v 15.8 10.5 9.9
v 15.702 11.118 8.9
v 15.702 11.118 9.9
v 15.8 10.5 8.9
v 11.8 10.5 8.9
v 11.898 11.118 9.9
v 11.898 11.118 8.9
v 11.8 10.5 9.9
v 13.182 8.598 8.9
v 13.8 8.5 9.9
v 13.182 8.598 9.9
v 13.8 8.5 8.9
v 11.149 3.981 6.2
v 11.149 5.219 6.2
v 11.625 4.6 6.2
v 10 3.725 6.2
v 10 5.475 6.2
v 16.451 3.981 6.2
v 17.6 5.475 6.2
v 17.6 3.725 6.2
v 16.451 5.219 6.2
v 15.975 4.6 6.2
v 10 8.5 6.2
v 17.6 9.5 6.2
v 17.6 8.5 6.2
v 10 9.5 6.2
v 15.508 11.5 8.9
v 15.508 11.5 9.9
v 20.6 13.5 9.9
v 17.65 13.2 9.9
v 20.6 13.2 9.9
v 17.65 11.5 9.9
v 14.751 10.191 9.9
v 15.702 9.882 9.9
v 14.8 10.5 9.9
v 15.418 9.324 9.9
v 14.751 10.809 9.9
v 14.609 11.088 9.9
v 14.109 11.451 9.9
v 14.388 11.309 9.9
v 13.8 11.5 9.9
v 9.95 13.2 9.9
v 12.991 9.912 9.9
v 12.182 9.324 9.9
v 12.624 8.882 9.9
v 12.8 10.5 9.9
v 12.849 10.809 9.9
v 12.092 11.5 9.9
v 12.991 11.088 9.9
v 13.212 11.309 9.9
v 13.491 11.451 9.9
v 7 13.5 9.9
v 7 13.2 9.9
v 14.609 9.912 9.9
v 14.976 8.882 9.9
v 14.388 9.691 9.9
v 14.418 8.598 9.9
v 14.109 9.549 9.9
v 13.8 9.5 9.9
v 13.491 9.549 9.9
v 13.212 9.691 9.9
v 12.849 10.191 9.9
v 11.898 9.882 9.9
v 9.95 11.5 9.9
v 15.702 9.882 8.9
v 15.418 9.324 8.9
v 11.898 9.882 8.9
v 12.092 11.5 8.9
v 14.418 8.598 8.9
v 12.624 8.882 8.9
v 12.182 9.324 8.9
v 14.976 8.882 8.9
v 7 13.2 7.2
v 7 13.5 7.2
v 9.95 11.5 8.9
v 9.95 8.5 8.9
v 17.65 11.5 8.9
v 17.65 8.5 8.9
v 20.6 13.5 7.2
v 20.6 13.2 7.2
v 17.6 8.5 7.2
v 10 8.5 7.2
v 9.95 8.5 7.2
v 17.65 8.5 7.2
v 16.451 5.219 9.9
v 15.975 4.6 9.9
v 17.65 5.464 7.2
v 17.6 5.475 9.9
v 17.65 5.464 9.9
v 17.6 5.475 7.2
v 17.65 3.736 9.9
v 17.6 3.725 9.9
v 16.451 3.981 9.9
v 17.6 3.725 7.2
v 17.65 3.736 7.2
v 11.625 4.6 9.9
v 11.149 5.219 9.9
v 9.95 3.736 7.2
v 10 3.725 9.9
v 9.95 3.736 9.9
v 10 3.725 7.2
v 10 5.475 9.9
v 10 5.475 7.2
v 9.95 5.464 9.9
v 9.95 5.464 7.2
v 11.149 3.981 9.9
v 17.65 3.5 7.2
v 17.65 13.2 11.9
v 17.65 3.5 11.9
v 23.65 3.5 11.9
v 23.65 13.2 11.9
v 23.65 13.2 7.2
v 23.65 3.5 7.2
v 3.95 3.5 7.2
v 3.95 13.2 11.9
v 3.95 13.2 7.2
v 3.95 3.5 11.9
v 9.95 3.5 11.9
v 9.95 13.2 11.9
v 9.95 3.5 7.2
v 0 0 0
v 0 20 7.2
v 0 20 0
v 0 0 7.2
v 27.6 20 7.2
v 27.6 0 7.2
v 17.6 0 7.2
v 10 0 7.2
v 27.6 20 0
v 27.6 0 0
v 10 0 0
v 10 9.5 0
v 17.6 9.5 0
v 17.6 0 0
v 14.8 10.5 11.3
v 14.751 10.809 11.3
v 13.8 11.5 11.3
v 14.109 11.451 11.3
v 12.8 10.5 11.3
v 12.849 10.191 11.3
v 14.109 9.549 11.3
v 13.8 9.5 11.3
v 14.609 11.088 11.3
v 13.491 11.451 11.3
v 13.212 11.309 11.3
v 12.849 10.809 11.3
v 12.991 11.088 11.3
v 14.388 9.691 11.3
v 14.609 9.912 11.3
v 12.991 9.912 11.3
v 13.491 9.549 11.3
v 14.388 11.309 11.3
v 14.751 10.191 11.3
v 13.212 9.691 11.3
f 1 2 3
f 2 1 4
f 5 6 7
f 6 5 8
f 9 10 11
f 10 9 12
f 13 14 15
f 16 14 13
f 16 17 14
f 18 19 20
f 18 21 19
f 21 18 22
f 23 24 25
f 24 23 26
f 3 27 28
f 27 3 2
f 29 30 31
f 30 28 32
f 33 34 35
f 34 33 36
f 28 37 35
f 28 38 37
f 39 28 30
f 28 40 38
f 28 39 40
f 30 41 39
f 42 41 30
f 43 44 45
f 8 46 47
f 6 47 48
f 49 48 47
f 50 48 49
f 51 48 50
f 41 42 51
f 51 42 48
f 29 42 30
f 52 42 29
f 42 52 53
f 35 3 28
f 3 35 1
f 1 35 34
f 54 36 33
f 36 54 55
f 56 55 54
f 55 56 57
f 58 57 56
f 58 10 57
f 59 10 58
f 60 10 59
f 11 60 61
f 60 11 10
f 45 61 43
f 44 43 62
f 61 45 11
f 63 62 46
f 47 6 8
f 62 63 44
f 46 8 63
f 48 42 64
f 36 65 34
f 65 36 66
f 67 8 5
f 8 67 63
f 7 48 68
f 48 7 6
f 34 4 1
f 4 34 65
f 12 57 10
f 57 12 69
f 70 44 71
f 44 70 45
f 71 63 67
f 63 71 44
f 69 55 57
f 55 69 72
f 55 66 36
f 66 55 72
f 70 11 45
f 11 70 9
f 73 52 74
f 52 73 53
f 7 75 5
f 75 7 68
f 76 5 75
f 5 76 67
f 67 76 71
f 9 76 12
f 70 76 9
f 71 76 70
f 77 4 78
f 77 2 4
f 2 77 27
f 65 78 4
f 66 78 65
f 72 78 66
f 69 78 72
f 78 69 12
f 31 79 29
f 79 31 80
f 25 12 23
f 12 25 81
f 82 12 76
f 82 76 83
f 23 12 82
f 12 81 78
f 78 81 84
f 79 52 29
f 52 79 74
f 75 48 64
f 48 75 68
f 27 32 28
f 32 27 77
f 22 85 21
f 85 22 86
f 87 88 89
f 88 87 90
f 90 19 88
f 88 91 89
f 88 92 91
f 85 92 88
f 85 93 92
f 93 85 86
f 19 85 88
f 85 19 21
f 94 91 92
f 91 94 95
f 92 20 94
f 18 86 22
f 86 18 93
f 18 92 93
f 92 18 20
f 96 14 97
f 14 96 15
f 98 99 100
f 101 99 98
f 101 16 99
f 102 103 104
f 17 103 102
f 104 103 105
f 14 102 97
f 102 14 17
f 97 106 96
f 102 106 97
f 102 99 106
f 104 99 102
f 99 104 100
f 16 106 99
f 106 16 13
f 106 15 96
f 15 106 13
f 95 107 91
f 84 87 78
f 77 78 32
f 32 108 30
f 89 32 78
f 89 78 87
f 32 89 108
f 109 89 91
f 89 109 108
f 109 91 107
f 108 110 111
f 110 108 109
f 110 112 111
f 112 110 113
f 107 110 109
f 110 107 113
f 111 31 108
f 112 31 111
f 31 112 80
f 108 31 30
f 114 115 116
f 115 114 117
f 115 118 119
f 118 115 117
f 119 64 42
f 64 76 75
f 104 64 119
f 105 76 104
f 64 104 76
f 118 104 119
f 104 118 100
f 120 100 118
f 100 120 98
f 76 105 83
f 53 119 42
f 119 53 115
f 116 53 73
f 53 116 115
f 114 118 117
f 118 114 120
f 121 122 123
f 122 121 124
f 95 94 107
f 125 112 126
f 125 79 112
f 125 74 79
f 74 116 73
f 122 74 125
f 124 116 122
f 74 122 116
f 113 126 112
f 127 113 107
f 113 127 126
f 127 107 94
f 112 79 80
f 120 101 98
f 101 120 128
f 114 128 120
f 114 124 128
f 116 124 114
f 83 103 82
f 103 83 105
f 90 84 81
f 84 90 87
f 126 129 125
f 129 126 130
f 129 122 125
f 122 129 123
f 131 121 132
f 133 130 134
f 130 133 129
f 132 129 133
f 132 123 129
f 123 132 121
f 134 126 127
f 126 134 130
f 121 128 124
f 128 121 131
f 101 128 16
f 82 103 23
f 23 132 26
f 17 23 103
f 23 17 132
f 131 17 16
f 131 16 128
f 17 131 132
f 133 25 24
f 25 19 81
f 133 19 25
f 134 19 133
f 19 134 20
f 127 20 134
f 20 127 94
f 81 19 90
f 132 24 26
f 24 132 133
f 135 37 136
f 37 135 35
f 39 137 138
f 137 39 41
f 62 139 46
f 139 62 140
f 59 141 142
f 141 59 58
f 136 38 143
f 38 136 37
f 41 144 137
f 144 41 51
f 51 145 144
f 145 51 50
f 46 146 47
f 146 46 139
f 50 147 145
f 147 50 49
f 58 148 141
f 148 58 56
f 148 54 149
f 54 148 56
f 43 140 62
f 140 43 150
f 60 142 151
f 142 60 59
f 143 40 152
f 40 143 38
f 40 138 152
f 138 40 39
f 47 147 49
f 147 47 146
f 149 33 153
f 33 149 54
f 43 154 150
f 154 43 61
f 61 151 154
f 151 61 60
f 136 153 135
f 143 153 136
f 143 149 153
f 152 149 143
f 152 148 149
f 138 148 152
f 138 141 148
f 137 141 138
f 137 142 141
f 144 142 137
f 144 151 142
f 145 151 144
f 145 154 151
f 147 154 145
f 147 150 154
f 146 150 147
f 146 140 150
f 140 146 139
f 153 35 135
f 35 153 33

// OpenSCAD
boardx = 7.6;
boardy = 12.7;
boardz = 1.02;
holed_pin = 1.02;
holed_blt = 2.18;
scale = 7.32; // 1.00 mm on scale drawing of sensor
sensory = 3.6;
sensorz = 1.7;
board_up = 9.7;


module sensor_board() {   // this module will locate the board and sensor the right 
    union() {             //  distance above the xy plain with a corner touching the z axis
        translate([0,0, board_up]) difference() {
            color("red") cube([boardx, boardy, boardz]); // board
            translate([1.27+0*2.54, 1.27, 0])cylinder(d=holed_pin, h=3, center=true, $fn=20);
            translate([1.27+1*2.54, 1.27, 0])cylinder(d=holed_pin, h=3, center=true, $fn=20);
            translate([1.27+2*2.54, 1.27, 0])cylinder(d=holed_pin, h=3, center=true, $fn=20);
            translate([3.8, boardy-2.2, 0])cylinder(d=holed_blt, h=3, center=true, $fn=20);
        };
        translate([3.8, 4.5, 9.7-1.7/2]) difference() {  
            color("grey")cube([2.9, sensory, sensorz], center=true); // sensor
            translate([0,sensory/2-0.94, -sensorz/2]  ) cube([18.38/scale, 10.61/scale, 0.3], center= true);
            translate([0,-sensory/2+0.94, -sensorz/2]  ) cube([18.38/scale, 10.61/scale, 0.3], center= true);         
        }
    }
}



module support3d() {
    
    union() {
        cylinder( r = 2.0, h = 3.7, $fn= 20);
        translate([0,0, 3.7/2-1/2]) cube([boardx+6, 2*2, 3.7-1], center = true );
        translate([0,2, 3.7/2]) cube([boardx+6, 2, 3.7], center = true );
    
        translate([boardx/2, -5.9, 0]) scale([1.3, 0.7, 1]) cylinder( d = 2.5,  h = 3.7, $fn= 8);
        translate([-boardx/2, -5.9, 0]) scale([1.3, 0.7, 1]) cylinder( d = 2.5,  h = 3.7, $fn= 8);
        translate([boardx/2+1.55+1.5,-boardy/2+2.2+2, (3.7+1+1)/2]) cube([6, boardy-3, 3.7+2], center = true );
        translate([-(boardx/2+1.55+1.5),-boardy/2+2.2+2, (3.7+1+1)/2]) cube([6, boardy-3, 3.7+2], center = true );
    }
}

module pin() {
    
    translate([0,0,0]) cylinder( d = 2.2-0.2, h = 3.1, $fn= 20);
}

module downpin1() {
    translate([0.17,0,0]) cylinder( d = 5, h = 3.1+6+2, $fn= 40);
}

module base() {
    difference() {
        cube([10+boardx+10, 20, 6]);
        translate([10, -0.2, -0.5]) cube([boardx, boardy-3, 7]);
        //translate([10+boardx+4, boardy-2.2, -0.1])scale([1,1,1.3])downpin1();
        //translate([10+boardx+4-16, boardy-2.2, -0.1])scale([1,1,1.3])downpin1();
    }
}


// translate([10, 0, 0.2]) sensor_board();


translate([10, 0, 0.2]) color("black", 1) union() {
    translate([boardx/2, boardy-2.2, 6]) support3d();
    translate([boardx/2, boardy-2.2, 6+2]) pin();
    //translate([boardx+4, boardy-2.2, 0])downpin1();
    //translate([boardx+4-16, boardy-2.2, 0])downpin1();
    translate([-10, 0, -0.2]) scale([1,1, 1.2]) base();
}
